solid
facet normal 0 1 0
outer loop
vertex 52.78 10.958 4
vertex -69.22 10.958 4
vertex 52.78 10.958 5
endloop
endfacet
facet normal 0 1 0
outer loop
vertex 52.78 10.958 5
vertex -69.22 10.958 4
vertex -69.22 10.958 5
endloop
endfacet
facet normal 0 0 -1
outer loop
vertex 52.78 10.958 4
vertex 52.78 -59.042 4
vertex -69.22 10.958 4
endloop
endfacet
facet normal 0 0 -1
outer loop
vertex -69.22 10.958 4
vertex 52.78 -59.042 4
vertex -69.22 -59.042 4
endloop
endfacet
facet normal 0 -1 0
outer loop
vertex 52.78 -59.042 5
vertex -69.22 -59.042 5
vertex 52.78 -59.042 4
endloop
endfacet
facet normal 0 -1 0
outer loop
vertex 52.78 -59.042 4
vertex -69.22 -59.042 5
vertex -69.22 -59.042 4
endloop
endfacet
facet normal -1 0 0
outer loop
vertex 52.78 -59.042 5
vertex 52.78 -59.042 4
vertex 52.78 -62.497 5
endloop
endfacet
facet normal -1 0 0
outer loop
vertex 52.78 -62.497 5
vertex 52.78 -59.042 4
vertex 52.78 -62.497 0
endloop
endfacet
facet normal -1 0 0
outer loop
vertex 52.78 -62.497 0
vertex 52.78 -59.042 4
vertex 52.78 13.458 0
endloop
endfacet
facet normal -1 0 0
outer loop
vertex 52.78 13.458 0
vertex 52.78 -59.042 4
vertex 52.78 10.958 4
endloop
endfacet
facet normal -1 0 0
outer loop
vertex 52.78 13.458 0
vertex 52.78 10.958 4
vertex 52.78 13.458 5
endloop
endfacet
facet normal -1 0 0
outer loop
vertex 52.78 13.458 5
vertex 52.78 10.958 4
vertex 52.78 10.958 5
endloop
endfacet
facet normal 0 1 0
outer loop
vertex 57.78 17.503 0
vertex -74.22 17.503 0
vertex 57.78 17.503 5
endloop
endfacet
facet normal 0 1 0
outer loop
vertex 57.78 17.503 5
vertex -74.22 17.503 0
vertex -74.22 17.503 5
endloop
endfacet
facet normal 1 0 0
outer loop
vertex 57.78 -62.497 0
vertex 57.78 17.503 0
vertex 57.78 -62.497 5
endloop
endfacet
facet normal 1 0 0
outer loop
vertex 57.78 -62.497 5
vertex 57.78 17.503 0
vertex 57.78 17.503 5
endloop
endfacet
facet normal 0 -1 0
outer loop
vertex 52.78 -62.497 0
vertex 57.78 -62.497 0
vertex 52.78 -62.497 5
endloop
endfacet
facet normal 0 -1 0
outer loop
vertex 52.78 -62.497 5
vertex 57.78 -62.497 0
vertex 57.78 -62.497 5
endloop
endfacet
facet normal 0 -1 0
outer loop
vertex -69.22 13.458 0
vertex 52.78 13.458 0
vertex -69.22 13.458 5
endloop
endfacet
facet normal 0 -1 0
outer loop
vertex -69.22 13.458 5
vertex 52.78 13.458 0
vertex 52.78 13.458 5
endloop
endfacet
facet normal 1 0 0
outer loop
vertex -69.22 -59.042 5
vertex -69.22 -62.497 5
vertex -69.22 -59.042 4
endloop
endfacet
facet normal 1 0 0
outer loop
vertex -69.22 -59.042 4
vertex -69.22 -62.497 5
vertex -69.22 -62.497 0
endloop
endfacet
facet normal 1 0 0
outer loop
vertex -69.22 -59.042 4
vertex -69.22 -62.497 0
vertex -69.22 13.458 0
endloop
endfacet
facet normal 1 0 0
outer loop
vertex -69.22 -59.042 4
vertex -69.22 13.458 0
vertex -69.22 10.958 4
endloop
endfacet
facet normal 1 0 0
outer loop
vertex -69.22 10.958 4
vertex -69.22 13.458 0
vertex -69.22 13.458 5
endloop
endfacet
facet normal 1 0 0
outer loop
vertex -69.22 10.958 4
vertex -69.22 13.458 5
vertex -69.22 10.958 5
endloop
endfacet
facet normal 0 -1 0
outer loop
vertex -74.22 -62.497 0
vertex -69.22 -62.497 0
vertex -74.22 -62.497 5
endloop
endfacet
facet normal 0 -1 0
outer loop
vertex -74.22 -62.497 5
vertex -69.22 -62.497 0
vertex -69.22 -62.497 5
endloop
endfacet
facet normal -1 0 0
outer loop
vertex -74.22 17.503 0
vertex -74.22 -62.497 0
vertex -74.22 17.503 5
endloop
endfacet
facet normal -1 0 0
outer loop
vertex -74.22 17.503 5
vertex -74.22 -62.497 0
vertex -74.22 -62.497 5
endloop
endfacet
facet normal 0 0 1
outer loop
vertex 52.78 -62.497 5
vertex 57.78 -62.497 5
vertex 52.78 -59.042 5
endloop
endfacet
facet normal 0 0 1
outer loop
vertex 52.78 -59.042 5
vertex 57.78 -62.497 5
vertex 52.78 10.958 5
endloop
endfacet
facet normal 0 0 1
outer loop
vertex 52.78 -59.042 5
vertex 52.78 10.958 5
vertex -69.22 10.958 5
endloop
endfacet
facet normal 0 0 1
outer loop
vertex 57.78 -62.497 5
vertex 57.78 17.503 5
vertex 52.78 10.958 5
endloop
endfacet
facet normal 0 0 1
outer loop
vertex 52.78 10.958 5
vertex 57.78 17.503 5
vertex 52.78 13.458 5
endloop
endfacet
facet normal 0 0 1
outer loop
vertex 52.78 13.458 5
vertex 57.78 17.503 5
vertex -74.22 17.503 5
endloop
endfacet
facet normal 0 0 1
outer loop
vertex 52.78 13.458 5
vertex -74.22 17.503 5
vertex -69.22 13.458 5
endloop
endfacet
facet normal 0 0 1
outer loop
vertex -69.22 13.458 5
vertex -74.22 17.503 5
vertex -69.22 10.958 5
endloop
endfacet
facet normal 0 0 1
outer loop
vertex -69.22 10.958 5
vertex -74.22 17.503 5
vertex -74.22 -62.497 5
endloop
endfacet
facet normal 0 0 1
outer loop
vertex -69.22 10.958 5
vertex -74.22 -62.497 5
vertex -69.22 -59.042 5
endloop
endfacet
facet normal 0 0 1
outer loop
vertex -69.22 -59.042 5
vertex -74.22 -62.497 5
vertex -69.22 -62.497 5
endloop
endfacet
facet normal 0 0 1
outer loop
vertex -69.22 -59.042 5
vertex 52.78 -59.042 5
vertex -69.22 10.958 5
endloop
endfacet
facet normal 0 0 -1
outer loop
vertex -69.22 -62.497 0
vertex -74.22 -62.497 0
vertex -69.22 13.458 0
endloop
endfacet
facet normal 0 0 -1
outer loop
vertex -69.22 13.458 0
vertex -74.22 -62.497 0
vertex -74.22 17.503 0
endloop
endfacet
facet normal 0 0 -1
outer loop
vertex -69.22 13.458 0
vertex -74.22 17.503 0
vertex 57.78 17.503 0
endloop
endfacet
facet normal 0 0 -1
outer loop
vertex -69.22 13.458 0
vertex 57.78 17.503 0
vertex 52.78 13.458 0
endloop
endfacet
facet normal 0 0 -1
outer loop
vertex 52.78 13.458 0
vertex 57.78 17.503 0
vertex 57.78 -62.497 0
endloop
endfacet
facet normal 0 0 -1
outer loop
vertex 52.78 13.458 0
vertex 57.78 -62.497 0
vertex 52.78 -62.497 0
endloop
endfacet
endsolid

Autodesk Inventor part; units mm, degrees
ref_plane "YZ Plane" through (0, 0, 0) normal (1, 0, 0) x (0, 1, 0)
ref_plane "XZ Plane" through (0, 0, 0) normal (0, 1, 0) x (-1, 0, 0)
ref_plane "XY Plane" through (0, 0, 0) normal (0, 0, 1) x (1, 0, 0)
sketch "Sketch1" plane through (0, 0, 0) normal (0, 0, 1) x (1, 0, 0)
  line L0 (-74.2195, 17.5033) -> (-69.2195, 17.5033)
  line L1 (-69.2195, 17.5033) -> (-69.2195, -62.4967)
  line L2 (-69.2195, -62.4967) -> (-74.2195, -62.4967)
  line L3 (-74.2195, -62.4967) -> (-74.2195, 17.5033)
  line L4 (-69.2195, 17.5033) -> (52.7805, 17.5033)
  line L5 (52.7805, 17.5033) -> (52.7805, 13.4578)
  line L6 (52.7805, 13.4578) -> (-69.2195, 13.4578)
  line L7 (-69.2195, 13.4578) -> (-69.2195, 17.5033)
  line L8 (52.7805, 17.5033) -> (57.7805, 17.5033)
  line L9 (57.7805, 17.5033) -> (57.7805, -62.4967)
  line L10 (57.7805, -62.4967) -> (52.7805, -62.4967)
  line L11 (52.7805, -62.4967) -> (52.7805, 17.5033)
  point P0 (0, 0)
  point P1 (-69.2195, 13.4578)
  dimension "d0" = 5
  dimension "d1" = 80
  dimension "d2" = 122
extrude "Extrusion1" add sketch "Sketch1" along normal blind 5
sketch "Sketch2" plane through (-69.2195, -62.4967, 0) normal (1, 0, 0) x (0, 0, -1)
  point P0 (0, 62.4967)
sketch "Sketch3" plane through (-69.2195, -62.4967, 0) normal (1, 0, 0) x (0, 0, -1)
  point P0 (0, 62.4967)
sketch "Sketch4" plane through (-69.2195, -62.4967, 0) normal (1, 0, 0) x (0, 0, -1)
  line L0 (-5, 73.4545) -> (-4, 73.4545)
  line L1 (-4, 73.4545) -> (-4, 3.4545)
  line L2 (-4, 3.4545) -> (-5, 3.4545)
  line L3 (-5, 3.4545) -> (-5, 73.4545)
  line L4 (-5, 0) -> (-5, 75.9545) projected
  line L5 (0, 75.9545) -> (-5, 75.9545) projected
  line L6 (0, 0) -> (-5, 0) projected
  point P0 (0, 62.4967)
  point P1 (-5, 38.4545)
  dimension "d5" = 1
  dimension "d6" = 70
  dimension "d7" = 2.5
  dimension "d8" = 3.4545
extrude "Extrusion2" add sketch "Sketch4" along normal up to surface (122 mm away)
properties part number "placa" material "PET Plastic"
